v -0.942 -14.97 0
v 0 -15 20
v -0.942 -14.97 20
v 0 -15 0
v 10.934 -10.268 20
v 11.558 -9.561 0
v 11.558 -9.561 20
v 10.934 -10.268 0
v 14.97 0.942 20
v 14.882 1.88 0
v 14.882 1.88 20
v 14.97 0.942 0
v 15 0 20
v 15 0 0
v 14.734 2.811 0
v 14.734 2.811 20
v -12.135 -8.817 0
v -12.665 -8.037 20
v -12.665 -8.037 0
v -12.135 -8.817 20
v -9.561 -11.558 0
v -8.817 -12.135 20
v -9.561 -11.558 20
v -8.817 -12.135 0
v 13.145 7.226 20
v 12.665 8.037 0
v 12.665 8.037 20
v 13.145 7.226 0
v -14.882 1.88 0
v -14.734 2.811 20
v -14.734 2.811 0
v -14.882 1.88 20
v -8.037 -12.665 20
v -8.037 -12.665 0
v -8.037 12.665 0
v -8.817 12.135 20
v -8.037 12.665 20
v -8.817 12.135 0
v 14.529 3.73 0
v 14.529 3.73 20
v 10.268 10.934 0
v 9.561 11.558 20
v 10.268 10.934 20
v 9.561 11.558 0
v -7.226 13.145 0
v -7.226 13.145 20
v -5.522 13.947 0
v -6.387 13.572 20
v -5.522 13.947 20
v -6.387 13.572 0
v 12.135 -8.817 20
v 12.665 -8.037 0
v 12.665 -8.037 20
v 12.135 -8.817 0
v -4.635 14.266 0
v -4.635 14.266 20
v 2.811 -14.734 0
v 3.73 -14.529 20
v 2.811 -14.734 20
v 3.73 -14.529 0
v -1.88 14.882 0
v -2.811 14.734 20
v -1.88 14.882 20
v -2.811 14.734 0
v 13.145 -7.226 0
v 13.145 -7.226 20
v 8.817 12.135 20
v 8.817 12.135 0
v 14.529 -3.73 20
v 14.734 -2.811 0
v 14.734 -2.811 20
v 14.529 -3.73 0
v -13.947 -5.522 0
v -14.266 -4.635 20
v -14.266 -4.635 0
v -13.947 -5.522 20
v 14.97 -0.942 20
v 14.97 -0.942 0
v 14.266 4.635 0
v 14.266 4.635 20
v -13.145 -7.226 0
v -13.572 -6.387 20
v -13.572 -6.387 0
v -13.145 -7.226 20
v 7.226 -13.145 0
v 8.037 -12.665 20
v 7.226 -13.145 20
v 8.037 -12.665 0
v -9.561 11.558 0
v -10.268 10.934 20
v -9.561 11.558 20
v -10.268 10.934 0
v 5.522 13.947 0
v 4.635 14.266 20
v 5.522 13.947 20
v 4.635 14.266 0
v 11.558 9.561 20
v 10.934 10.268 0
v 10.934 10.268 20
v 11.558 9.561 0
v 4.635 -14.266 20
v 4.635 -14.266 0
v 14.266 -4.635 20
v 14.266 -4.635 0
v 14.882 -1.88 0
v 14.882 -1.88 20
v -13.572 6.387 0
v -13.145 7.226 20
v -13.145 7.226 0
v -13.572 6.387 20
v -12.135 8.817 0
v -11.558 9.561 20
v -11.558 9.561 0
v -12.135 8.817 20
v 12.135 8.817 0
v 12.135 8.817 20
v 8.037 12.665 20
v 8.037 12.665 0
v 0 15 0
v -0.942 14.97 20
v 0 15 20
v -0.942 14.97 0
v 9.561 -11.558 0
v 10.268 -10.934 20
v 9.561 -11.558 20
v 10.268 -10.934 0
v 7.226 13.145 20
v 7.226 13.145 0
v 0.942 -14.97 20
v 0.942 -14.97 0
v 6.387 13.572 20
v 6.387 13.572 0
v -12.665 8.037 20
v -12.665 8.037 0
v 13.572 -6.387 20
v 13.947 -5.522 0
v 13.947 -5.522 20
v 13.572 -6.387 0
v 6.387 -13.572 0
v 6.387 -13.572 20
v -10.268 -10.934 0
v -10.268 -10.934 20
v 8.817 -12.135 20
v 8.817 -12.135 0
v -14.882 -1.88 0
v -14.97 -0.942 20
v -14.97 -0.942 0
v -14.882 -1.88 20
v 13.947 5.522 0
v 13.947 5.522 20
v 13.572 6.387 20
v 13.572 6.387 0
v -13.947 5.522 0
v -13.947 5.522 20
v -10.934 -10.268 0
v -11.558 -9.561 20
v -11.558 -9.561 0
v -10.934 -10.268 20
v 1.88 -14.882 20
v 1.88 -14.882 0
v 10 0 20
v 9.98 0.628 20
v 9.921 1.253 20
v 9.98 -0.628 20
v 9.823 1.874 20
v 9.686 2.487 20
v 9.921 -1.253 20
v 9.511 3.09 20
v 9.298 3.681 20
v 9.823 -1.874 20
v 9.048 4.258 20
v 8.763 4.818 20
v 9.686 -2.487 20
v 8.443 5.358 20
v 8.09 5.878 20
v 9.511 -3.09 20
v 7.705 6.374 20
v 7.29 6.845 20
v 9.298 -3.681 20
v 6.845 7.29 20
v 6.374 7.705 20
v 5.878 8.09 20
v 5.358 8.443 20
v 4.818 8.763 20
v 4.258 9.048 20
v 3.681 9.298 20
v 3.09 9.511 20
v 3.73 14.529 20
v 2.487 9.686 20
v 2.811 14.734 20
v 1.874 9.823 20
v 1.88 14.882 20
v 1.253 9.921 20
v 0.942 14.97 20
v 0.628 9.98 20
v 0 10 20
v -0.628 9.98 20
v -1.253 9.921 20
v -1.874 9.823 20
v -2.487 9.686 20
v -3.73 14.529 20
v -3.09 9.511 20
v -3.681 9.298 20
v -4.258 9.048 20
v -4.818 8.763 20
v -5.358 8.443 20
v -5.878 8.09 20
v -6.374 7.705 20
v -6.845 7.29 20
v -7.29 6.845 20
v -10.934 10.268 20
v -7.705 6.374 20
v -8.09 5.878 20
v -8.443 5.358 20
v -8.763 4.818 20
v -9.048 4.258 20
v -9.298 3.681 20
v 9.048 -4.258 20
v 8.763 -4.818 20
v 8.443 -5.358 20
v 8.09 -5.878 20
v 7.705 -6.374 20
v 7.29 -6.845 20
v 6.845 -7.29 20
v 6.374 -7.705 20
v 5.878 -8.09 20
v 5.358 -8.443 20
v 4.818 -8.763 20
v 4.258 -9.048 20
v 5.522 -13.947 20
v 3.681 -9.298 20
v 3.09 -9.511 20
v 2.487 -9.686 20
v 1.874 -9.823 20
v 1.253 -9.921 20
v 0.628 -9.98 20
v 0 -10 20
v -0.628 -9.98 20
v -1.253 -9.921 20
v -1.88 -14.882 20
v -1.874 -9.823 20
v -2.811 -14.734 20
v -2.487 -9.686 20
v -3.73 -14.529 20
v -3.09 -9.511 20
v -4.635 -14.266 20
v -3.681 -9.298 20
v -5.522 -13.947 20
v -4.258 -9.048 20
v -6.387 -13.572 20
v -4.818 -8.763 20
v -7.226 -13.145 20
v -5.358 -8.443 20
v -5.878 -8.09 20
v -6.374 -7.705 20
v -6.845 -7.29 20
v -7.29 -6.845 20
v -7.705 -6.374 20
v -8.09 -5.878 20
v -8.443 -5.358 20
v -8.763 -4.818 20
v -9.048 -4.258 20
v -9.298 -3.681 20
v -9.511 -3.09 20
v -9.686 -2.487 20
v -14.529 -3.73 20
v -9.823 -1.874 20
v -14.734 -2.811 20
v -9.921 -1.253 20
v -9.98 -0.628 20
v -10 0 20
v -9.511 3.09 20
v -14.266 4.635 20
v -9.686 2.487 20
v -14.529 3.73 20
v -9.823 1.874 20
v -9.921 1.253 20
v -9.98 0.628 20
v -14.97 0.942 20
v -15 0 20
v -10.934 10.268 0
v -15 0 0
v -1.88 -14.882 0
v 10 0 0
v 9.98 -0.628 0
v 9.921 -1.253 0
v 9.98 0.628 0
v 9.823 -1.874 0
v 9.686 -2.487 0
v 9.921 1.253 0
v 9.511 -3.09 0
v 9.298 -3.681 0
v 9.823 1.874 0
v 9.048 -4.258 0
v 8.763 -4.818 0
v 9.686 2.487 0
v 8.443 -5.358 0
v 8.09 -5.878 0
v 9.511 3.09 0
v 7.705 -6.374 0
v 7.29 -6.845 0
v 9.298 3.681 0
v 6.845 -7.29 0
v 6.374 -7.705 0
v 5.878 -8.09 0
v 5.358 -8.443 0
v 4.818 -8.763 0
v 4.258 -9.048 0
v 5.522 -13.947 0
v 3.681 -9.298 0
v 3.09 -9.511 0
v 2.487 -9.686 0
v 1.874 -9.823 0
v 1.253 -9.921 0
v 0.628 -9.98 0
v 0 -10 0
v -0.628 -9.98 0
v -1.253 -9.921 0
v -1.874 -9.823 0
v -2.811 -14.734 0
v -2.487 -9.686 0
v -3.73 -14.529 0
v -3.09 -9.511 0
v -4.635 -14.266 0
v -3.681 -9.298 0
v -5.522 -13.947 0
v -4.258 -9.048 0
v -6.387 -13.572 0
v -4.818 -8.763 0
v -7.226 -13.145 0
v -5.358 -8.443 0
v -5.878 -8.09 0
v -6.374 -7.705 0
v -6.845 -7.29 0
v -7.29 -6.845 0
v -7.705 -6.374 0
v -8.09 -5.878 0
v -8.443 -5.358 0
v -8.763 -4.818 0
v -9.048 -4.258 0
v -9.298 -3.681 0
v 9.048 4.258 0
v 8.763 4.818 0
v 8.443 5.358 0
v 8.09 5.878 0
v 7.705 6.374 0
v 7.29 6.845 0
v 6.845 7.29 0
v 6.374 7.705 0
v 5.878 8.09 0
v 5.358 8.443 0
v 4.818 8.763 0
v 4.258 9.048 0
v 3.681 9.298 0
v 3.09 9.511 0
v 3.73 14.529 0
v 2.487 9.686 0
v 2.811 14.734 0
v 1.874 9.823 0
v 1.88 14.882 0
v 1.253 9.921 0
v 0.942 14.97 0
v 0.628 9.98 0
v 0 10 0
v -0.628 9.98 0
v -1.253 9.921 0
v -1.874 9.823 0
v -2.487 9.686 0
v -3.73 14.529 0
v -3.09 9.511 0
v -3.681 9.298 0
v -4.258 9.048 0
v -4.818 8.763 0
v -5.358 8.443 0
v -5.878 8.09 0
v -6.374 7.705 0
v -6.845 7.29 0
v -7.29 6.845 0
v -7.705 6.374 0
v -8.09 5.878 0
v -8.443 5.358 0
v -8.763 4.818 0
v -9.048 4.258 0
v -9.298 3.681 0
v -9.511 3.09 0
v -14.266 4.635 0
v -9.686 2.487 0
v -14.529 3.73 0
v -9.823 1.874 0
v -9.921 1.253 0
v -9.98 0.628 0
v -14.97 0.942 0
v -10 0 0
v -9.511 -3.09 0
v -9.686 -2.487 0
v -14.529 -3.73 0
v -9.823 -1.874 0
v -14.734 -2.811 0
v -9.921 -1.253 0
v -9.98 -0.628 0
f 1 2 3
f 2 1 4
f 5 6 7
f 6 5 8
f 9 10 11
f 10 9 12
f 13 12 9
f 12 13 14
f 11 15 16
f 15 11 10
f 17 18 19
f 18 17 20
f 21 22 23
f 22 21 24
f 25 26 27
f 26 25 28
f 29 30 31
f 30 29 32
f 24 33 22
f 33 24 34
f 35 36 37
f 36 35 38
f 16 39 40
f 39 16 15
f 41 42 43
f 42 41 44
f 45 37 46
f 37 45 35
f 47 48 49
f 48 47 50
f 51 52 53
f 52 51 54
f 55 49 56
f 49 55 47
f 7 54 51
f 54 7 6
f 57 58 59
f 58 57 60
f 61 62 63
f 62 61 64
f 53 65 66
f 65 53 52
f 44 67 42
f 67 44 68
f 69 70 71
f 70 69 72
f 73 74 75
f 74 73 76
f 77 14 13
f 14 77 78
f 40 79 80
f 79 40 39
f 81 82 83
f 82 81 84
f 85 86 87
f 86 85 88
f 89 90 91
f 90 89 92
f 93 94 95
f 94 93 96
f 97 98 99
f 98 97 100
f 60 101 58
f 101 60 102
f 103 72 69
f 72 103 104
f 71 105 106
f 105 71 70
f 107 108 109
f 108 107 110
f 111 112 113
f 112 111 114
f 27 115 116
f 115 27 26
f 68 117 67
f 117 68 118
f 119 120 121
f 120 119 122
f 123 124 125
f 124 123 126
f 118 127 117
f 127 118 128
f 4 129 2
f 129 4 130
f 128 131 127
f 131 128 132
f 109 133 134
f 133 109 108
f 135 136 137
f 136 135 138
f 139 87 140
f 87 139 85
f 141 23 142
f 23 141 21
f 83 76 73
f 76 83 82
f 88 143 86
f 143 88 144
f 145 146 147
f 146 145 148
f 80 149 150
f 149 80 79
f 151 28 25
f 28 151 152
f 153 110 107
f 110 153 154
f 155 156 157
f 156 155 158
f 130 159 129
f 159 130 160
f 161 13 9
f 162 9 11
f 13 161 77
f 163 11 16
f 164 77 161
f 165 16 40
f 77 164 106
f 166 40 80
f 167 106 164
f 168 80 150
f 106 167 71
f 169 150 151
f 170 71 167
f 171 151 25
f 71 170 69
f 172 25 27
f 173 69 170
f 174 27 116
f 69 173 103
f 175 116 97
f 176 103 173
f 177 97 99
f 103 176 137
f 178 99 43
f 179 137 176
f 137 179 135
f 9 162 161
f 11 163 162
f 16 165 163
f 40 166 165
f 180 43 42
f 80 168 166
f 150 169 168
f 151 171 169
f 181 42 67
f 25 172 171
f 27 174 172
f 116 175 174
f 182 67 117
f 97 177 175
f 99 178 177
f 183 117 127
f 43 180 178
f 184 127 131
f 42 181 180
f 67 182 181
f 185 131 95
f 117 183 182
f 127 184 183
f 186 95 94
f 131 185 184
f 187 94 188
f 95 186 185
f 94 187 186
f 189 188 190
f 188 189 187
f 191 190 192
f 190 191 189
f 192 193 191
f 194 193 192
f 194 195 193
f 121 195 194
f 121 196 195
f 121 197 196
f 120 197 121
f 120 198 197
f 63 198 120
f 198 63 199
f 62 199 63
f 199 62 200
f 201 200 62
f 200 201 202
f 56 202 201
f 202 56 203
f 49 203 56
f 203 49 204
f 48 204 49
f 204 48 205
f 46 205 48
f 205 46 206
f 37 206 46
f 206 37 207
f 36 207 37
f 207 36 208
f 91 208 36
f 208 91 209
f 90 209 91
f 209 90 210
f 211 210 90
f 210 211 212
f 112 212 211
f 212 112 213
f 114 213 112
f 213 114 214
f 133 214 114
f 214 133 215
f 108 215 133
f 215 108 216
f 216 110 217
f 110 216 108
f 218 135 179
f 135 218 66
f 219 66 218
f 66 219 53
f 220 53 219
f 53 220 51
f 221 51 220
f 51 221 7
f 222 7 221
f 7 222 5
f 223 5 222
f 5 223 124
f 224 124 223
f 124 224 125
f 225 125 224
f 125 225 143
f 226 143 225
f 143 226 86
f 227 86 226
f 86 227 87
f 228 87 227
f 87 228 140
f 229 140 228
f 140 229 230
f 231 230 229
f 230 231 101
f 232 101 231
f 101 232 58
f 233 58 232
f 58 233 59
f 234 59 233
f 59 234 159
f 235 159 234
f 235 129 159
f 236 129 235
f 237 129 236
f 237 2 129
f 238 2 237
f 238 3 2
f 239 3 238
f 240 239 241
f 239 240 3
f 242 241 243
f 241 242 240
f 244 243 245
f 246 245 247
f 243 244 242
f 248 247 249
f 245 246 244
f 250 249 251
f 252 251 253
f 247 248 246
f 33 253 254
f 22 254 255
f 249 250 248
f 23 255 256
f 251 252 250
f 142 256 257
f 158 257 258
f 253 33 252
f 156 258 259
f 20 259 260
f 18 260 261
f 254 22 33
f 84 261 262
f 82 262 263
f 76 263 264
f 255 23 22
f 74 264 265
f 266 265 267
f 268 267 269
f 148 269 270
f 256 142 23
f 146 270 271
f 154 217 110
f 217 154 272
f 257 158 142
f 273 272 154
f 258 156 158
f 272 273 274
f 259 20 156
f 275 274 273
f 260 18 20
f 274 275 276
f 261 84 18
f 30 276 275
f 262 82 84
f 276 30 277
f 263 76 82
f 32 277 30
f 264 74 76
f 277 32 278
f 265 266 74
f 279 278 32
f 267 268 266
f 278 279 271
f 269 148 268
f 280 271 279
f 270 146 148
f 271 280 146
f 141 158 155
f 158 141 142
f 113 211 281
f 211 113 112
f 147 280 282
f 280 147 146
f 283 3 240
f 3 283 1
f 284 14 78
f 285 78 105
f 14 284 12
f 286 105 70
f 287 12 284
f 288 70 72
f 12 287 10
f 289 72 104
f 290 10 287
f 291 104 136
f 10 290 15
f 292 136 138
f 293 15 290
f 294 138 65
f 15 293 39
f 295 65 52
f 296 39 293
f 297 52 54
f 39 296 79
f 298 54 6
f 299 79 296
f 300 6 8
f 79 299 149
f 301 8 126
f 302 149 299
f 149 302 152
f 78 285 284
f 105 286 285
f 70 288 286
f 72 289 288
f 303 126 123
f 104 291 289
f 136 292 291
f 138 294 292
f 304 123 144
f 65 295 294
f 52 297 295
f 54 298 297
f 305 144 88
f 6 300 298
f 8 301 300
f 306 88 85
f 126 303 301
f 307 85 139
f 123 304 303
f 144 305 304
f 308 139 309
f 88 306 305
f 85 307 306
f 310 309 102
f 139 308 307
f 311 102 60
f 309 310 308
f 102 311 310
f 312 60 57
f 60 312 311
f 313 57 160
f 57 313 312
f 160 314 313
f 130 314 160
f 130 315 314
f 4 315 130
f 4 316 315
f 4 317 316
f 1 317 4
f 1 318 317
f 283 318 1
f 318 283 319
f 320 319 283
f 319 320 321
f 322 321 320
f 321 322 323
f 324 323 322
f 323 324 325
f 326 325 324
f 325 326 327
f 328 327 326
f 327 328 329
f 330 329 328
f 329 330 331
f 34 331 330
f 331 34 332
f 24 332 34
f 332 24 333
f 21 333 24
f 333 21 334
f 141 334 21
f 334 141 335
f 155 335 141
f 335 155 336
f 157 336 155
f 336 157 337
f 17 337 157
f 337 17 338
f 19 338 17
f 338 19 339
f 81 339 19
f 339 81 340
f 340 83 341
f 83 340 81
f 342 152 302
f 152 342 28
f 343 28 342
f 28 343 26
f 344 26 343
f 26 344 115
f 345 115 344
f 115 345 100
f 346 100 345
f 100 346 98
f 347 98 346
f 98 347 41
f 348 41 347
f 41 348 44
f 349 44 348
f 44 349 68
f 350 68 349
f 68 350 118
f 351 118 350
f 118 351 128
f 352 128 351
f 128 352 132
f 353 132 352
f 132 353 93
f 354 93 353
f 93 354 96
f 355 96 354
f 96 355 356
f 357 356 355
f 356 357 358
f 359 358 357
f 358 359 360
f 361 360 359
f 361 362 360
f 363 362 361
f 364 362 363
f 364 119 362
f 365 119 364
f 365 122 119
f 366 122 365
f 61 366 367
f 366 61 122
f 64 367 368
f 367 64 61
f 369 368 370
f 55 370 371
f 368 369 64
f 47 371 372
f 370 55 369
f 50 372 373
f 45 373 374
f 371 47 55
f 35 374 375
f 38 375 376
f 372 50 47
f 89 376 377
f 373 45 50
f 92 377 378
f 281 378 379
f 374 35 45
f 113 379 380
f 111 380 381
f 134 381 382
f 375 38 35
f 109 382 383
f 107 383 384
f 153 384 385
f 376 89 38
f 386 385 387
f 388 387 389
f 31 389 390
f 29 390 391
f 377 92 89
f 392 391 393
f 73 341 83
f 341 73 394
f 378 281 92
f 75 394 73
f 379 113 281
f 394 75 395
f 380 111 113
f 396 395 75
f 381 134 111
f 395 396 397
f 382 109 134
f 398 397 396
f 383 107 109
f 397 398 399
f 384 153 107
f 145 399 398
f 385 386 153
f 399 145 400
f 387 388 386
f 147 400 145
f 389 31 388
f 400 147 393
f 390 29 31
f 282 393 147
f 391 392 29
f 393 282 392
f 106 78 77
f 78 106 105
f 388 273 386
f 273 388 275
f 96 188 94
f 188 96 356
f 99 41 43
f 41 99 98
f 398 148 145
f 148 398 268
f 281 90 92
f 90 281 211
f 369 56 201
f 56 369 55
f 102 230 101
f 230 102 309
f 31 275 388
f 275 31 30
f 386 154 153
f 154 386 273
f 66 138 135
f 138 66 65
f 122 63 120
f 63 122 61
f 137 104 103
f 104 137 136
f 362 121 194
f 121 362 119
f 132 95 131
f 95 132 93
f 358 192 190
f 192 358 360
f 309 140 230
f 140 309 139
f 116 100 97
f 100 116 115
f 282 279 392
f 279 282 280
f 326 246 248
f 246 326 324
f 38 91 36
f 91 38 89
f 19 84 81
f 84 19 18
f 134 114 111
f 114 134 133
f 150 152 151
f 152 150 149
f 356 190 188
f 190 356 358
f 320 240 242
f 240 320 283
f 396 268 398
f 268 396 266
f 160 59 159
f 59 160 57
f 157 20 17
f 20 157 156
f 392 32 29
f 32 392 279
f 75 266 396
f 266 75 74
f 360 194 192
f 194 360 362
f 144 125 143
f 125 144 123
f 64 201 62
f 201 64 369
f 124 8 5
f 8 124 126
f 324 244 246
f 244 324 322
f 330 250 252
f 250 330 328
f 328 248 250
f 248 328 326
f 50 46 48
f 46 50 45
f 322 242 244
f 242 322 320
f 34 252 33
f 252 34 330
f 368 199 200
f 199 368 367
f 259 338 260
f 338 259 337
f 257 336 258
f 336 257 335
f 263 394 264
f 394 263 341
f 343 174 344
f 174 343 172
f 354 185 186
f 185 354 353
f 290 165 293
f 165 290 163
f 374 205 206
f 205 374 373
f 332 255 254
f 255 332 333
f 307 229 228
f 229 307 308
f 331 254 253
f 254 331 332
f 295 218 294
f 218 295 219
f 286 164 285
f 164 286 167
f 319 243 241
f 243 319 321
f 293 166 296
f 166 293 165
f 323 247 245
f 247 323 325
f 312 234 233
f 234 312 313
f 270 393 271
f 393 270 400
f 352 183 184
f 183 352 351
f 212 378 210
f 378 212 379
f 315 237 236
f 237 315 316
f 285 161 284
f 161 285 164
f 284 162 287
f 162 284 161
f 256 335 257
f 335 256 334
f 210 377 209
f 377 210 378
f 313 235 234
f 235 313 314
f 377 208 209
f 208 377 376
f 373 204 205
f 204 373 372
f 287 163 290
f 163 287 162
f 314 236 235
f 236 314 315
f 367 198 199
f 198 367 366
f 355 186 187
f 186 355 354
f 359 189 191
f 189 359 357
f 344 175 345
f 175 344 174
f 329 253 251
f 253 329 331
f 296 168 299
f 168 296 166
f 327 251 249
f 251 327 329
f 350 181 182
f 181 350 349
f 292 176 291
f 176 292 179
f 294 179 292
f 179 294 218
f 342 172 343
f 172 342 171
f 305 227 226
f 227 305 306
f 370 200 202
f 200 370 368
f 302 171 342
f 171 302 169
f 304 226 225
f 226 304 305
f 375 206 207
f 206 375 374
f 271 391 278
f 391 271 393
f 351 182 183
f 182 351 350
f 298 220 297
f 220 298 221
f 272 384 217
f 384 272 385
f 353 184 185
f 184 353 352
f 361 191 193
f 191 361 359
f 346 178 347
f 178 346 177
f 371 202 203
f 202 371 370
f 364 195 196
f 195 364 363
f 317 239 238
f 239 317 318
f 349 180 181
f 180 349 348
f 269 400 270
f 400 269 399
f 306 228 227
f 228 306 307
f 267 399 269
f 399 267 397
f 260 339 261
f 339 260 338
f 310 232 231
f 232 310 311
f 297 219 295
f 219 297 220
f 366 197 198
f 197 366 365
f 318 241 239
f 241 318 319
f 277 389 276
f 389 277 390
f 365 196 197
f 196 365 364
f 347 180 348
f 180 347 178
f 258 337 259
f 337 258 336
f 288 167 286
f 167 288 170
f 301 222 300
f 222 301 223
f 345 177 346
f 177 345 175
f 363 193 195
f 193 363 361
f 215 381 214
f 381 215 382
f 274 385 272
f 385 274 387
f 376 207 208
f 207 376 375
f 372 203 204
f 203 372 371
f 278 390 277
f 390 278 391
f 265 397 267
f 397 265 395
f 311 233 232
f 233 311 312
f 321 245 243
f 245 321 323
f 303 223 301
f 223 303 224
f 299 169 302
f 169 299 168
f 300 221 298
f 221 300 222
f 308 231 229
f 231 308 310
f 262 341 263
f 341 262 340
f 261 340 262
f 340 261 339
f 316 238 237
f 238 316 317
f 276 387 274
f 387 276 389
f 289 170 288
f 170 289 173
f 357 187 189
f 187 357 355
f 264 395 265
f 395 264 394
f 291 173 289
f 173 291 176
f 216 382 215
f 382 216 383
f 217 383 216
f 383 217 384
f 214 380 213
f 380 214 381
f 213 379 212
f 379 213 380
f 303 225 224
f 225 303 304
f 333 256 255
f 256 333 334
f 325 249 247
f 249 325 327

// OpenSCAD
// Central Hub Component
module central_hub() {
    difference() {
        // Outer cylinder
        cylinder(h = 20, r1 = 15, r2 = 15, $fn = 100);
        // Inner hollow cylinder
        translate([0, 0, -1]) cylinder(h = 22, r = 10, $fn = 100);
        // Flared base (adjusted to be subtler)
        translate([0, 0, -1]) cylinder(h = 1, r1 = 15, r2 = 16, $fn = 100);
    }
}

// Render the central hub
central_hub();
